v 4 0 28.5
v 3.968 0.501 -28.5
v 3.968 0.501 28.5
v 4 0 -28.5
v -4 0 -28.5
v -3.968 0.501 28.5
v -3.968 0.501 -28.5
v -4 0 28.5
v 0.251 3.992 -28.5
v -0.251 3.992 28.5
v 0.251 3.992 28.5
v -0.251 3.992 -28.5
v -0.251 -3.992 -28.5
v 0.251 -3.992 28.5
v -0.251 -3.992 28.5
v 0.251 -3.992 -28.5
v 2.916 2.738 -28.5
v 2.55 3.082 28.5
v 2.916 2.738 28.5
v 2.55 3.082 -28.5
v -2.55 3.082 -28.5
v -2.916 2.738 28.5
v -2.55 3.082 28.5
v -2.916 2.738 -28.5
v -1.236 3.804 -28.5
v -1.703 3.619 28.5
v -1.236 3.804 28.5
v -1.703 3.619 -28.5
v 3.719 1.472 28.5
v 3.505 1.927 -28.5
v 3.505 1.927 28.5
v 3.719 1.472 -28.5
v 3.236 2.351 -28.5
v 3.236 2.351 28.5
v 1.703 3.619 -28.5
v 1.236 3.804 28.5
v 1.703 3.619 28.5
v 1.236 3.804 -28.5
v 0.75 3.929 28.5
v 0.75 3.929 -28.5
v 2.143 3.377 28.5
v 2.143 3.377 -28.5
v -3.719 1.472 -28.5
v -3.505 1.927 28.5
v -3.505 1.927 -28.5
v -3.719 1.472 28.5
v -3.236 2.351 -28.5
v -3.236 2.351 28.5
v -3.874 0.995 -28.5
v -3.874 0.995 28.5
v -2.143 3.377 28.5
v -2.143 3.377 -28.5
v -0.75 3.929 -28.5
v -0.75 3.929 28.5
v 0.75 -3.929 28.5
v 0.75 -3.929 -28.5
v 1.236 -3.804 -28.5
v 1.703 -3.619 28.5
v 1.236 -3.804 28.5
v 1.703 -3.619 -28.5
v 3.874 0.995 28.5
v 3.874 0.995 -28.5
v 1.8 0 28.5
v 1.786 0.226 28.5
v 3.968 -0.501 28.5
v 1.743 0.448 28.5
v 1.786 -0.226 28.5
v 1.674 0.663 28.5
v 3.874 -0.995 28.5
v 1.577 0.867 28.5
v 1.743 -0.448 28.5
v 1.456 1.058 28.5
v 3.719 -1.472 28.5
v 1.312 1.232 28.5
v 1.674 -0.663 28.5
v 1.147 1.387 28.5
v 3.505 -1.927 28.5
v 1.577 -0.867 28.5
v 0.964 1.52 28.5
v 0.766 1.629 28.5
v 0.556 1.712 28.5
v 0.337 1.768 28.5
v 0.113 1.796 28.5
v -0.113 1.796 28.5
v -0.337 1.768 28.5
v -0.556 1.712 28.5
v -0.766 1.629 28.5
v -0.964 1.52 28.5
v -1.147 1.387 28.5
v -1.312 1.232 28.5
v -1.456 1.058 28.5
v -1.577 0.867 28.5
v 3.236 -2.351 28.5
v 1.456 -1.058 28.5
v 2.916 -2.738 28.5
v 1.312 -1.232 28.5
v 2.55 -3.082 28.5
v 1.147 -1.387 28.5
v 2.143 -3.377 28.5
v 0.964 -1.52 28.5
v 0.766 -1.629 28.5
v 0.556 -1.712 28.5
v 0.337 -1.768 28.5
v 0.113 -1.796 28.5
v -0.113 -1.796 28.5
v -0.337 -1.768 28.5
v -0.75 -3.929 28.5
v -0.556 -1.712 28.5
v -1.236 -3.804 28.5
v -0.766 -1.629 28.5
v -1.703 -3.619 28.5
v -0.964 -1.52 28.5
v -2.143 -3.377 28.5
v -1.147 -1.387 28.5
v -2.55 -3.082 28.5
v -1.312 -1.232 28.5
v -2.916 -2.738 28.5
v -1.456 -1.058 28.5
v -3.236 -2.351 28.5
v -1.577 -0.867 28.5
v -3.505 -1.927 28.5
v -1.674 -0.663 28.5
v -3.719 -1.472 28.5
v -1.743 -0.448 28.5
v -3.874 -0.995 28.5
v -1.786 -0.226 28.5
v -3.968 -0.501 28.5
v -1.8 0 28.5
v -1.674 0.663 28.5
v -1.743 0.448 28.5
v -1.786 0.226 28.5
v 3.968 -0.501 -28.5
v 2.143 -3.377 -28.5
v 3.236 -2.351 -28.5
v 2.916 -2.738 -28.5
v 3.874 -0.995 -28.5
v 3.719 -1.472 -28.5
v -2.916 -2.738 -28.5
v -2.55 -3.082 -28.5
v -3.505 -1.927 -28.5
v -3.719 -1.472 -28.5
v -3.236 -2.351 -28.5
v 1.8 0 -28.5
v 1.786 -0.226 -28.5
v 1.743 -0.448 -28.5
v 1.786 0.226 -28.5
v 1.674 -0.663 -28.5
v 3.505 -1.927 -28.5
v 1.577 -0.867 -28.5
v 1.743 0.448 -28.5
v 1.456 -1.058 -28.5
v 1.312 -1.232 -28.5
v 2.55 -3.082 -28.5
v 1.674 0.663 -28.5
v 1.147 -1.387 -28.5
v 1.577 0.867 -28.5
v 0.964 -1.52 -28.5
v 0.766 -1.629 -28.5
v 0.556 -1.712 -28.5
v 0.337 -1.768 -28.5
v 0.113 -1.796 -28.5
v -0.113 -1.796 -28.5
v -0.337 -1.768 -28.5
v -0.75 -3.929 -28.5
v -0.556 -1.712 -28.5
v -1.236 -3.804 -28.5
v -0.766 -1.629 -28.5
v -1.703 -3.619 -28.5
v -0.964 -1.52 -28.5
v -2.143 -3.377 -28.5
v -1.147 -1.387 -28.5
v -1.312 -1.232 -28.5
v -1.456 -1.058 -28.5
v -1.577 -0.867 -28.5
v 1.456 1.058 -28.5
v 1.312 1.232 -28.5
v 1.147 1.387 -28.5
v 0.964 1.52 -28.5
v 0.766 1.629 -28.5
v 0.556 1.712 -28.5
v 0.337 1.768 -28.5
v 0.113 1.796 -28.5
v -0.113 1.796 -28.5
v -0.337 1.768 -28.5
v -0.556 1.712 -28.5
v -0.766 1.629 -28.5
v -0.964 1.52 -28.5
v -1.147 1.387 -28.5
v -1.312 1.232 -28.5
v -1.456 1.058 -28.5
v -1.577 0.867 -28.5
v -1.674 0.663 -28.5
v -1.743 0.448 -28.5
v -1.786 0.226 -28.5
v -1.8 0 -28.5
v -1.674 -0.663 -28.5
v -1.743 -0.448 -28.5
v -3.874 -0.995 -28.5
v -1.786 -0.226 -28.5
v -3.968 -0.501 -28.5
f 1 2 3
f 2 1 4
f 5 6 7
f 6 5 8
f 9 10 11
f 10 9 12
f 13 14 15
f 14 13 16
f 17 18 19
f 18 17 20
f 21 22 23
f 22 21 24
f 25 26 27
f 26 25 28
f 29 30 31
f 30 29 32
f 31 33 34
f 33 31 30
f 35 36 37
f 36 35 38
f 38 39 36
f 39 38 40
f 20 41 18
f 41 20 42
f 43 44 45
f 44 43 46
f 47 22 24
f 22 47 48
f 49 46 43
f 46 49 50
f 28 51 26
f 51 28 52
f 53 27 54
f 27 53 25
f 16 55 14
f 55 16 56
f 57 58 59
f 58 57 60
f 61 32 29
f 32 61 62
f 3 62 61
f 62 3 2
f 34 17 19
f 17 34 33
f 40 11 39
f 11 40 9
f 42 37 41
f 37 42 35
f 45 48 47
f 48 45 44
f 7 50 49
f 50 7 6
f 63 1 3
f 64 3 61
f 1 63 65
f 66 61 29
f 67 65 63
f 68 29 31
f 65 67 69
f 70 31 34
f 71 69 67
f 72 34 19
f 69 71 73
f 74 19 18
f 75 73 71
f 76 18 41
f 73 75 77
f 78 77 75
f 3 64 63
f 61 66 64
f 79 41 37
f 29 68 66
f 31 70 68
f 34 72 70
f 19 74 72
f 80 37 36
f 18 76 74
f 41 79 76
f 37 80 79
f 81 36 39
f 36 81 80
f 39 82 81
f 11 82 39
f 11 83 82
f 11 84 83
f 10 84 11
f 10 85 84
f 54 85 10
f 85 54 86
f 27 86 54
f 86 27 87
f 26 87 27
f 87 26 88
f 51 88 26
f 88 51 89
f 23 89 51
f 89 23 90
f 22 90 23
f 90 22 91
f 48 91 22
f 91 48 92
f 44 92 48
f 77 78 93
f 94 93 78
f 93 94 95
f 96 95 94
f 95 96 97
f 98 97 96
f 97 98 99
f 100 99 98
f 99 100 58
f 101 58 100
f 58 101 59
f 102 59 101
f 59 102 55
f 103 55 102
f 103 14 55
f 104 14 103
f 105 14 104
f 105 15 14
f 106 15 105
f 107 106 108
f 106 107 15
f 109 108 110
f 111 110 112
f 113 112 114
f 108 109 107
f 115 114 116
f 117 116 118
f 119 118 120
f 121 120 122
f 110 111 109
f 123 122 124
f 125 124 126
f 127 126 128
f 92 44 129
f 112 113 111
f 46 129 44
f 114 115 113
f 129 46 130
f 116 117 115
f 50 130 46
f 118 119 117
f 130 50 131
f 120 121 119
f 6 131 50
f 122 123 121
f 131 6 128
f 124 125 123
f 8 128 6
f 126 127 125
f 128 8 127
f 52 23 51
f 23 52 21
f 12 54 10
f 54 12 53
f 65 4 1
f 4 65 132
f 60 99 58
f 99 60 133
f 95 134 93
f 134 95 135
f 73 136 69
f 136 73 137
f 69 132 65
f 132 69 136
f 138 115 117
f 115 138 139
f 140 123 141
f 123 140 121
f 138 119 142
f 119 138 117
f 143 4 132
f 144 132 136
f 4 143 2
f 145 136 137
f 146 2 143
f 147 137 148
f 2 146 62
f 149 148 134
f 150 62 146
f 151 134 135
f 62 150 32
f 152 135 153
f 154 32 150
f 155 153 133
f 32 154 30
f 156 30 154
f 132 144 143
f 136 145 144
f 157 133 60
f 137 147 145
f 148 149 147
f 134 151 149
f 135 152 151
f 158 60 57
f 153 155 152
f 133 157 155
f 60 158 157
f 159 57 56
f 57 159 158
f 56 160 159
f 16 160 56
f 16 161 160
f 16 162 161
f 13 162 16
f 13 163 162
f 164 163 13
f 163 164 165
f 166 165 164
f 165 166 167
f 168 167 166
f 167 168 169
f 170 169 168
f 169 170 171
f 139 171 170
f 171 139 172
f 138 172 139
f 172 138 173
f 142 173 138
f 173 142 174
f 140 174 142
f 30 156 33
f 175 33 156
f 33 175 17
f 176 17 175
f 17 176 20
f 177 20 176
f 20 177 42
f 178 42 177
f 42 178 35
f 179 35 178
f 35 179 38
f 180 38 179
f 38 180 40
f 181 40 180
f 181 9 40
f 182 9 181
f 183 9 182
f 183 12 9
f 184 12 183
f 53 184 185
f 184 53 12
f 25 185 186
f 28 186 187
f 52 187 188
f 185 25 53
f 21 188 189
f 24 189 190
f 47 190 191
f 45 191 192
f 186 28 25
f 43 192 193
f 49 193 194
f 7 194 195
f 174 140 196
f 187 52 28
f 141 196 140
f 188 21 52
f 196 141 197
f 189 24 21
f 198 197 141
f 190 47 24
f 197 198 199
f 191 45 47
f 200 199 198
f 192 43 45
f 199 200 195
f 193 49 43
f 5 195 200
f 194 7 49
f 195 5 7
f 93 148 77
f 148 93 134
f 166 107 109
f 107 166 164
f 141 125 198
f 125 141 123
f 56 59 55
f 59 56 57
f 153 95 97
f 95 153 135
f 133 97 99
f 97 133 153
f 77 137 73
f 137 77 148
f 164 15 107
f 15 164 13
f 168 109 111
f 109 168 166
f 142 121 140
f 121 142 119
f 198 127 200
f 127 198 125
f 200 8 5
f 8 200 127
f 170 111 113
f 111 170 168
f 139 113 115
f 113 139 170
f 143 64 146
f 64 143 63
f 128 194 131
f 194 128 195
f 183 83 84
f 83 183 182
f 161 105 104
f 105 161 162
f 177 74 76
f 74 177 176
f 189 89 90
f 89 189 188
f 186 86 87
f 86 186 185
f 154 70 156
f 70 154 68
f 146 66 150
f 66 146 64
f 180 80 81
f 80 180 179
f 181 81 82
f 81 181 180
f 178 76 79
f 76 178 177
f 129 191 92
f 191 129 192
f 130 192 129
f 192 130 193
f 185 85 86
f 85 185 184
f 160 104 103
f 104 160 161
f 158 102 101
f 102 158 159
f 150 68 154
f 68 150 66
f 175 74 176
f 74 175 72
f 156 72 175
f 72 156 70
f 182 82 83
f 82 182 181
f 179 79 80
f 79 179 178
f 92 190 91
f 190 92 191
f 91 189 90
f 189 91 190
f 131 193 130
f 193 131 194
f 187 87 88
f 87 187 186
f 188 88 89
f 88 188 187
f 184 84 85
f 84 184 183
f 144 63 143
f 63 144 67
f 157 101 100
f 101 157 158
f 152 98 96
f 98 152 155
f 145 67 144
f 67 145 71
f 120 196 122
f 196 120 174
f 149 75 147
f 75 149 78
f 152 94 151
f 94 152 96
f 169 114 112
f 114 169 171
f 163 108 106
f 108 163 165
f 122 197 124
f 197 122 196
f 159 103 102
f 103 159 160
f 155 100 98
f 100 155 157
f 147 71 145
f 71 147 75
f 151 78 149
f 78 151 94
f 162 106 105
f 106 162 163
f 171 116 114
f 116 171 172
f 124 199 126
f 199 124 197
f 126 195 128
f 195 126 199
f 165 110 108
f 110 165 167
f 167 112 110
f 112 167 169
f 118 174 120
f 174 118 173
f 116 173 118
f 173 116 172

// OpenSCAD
$fn = 50;


difference() {
	union() {
		translate(v = [0, 0, -28.5000000000]) {
			cylinder(h = 57, r = 4.0000000000);
		}
	}
	union() {
		translate(v = [0, 0, -100.0000000000]) {
			cylinder(h = 200, r = 1.8000000000);
		}
	}
}
